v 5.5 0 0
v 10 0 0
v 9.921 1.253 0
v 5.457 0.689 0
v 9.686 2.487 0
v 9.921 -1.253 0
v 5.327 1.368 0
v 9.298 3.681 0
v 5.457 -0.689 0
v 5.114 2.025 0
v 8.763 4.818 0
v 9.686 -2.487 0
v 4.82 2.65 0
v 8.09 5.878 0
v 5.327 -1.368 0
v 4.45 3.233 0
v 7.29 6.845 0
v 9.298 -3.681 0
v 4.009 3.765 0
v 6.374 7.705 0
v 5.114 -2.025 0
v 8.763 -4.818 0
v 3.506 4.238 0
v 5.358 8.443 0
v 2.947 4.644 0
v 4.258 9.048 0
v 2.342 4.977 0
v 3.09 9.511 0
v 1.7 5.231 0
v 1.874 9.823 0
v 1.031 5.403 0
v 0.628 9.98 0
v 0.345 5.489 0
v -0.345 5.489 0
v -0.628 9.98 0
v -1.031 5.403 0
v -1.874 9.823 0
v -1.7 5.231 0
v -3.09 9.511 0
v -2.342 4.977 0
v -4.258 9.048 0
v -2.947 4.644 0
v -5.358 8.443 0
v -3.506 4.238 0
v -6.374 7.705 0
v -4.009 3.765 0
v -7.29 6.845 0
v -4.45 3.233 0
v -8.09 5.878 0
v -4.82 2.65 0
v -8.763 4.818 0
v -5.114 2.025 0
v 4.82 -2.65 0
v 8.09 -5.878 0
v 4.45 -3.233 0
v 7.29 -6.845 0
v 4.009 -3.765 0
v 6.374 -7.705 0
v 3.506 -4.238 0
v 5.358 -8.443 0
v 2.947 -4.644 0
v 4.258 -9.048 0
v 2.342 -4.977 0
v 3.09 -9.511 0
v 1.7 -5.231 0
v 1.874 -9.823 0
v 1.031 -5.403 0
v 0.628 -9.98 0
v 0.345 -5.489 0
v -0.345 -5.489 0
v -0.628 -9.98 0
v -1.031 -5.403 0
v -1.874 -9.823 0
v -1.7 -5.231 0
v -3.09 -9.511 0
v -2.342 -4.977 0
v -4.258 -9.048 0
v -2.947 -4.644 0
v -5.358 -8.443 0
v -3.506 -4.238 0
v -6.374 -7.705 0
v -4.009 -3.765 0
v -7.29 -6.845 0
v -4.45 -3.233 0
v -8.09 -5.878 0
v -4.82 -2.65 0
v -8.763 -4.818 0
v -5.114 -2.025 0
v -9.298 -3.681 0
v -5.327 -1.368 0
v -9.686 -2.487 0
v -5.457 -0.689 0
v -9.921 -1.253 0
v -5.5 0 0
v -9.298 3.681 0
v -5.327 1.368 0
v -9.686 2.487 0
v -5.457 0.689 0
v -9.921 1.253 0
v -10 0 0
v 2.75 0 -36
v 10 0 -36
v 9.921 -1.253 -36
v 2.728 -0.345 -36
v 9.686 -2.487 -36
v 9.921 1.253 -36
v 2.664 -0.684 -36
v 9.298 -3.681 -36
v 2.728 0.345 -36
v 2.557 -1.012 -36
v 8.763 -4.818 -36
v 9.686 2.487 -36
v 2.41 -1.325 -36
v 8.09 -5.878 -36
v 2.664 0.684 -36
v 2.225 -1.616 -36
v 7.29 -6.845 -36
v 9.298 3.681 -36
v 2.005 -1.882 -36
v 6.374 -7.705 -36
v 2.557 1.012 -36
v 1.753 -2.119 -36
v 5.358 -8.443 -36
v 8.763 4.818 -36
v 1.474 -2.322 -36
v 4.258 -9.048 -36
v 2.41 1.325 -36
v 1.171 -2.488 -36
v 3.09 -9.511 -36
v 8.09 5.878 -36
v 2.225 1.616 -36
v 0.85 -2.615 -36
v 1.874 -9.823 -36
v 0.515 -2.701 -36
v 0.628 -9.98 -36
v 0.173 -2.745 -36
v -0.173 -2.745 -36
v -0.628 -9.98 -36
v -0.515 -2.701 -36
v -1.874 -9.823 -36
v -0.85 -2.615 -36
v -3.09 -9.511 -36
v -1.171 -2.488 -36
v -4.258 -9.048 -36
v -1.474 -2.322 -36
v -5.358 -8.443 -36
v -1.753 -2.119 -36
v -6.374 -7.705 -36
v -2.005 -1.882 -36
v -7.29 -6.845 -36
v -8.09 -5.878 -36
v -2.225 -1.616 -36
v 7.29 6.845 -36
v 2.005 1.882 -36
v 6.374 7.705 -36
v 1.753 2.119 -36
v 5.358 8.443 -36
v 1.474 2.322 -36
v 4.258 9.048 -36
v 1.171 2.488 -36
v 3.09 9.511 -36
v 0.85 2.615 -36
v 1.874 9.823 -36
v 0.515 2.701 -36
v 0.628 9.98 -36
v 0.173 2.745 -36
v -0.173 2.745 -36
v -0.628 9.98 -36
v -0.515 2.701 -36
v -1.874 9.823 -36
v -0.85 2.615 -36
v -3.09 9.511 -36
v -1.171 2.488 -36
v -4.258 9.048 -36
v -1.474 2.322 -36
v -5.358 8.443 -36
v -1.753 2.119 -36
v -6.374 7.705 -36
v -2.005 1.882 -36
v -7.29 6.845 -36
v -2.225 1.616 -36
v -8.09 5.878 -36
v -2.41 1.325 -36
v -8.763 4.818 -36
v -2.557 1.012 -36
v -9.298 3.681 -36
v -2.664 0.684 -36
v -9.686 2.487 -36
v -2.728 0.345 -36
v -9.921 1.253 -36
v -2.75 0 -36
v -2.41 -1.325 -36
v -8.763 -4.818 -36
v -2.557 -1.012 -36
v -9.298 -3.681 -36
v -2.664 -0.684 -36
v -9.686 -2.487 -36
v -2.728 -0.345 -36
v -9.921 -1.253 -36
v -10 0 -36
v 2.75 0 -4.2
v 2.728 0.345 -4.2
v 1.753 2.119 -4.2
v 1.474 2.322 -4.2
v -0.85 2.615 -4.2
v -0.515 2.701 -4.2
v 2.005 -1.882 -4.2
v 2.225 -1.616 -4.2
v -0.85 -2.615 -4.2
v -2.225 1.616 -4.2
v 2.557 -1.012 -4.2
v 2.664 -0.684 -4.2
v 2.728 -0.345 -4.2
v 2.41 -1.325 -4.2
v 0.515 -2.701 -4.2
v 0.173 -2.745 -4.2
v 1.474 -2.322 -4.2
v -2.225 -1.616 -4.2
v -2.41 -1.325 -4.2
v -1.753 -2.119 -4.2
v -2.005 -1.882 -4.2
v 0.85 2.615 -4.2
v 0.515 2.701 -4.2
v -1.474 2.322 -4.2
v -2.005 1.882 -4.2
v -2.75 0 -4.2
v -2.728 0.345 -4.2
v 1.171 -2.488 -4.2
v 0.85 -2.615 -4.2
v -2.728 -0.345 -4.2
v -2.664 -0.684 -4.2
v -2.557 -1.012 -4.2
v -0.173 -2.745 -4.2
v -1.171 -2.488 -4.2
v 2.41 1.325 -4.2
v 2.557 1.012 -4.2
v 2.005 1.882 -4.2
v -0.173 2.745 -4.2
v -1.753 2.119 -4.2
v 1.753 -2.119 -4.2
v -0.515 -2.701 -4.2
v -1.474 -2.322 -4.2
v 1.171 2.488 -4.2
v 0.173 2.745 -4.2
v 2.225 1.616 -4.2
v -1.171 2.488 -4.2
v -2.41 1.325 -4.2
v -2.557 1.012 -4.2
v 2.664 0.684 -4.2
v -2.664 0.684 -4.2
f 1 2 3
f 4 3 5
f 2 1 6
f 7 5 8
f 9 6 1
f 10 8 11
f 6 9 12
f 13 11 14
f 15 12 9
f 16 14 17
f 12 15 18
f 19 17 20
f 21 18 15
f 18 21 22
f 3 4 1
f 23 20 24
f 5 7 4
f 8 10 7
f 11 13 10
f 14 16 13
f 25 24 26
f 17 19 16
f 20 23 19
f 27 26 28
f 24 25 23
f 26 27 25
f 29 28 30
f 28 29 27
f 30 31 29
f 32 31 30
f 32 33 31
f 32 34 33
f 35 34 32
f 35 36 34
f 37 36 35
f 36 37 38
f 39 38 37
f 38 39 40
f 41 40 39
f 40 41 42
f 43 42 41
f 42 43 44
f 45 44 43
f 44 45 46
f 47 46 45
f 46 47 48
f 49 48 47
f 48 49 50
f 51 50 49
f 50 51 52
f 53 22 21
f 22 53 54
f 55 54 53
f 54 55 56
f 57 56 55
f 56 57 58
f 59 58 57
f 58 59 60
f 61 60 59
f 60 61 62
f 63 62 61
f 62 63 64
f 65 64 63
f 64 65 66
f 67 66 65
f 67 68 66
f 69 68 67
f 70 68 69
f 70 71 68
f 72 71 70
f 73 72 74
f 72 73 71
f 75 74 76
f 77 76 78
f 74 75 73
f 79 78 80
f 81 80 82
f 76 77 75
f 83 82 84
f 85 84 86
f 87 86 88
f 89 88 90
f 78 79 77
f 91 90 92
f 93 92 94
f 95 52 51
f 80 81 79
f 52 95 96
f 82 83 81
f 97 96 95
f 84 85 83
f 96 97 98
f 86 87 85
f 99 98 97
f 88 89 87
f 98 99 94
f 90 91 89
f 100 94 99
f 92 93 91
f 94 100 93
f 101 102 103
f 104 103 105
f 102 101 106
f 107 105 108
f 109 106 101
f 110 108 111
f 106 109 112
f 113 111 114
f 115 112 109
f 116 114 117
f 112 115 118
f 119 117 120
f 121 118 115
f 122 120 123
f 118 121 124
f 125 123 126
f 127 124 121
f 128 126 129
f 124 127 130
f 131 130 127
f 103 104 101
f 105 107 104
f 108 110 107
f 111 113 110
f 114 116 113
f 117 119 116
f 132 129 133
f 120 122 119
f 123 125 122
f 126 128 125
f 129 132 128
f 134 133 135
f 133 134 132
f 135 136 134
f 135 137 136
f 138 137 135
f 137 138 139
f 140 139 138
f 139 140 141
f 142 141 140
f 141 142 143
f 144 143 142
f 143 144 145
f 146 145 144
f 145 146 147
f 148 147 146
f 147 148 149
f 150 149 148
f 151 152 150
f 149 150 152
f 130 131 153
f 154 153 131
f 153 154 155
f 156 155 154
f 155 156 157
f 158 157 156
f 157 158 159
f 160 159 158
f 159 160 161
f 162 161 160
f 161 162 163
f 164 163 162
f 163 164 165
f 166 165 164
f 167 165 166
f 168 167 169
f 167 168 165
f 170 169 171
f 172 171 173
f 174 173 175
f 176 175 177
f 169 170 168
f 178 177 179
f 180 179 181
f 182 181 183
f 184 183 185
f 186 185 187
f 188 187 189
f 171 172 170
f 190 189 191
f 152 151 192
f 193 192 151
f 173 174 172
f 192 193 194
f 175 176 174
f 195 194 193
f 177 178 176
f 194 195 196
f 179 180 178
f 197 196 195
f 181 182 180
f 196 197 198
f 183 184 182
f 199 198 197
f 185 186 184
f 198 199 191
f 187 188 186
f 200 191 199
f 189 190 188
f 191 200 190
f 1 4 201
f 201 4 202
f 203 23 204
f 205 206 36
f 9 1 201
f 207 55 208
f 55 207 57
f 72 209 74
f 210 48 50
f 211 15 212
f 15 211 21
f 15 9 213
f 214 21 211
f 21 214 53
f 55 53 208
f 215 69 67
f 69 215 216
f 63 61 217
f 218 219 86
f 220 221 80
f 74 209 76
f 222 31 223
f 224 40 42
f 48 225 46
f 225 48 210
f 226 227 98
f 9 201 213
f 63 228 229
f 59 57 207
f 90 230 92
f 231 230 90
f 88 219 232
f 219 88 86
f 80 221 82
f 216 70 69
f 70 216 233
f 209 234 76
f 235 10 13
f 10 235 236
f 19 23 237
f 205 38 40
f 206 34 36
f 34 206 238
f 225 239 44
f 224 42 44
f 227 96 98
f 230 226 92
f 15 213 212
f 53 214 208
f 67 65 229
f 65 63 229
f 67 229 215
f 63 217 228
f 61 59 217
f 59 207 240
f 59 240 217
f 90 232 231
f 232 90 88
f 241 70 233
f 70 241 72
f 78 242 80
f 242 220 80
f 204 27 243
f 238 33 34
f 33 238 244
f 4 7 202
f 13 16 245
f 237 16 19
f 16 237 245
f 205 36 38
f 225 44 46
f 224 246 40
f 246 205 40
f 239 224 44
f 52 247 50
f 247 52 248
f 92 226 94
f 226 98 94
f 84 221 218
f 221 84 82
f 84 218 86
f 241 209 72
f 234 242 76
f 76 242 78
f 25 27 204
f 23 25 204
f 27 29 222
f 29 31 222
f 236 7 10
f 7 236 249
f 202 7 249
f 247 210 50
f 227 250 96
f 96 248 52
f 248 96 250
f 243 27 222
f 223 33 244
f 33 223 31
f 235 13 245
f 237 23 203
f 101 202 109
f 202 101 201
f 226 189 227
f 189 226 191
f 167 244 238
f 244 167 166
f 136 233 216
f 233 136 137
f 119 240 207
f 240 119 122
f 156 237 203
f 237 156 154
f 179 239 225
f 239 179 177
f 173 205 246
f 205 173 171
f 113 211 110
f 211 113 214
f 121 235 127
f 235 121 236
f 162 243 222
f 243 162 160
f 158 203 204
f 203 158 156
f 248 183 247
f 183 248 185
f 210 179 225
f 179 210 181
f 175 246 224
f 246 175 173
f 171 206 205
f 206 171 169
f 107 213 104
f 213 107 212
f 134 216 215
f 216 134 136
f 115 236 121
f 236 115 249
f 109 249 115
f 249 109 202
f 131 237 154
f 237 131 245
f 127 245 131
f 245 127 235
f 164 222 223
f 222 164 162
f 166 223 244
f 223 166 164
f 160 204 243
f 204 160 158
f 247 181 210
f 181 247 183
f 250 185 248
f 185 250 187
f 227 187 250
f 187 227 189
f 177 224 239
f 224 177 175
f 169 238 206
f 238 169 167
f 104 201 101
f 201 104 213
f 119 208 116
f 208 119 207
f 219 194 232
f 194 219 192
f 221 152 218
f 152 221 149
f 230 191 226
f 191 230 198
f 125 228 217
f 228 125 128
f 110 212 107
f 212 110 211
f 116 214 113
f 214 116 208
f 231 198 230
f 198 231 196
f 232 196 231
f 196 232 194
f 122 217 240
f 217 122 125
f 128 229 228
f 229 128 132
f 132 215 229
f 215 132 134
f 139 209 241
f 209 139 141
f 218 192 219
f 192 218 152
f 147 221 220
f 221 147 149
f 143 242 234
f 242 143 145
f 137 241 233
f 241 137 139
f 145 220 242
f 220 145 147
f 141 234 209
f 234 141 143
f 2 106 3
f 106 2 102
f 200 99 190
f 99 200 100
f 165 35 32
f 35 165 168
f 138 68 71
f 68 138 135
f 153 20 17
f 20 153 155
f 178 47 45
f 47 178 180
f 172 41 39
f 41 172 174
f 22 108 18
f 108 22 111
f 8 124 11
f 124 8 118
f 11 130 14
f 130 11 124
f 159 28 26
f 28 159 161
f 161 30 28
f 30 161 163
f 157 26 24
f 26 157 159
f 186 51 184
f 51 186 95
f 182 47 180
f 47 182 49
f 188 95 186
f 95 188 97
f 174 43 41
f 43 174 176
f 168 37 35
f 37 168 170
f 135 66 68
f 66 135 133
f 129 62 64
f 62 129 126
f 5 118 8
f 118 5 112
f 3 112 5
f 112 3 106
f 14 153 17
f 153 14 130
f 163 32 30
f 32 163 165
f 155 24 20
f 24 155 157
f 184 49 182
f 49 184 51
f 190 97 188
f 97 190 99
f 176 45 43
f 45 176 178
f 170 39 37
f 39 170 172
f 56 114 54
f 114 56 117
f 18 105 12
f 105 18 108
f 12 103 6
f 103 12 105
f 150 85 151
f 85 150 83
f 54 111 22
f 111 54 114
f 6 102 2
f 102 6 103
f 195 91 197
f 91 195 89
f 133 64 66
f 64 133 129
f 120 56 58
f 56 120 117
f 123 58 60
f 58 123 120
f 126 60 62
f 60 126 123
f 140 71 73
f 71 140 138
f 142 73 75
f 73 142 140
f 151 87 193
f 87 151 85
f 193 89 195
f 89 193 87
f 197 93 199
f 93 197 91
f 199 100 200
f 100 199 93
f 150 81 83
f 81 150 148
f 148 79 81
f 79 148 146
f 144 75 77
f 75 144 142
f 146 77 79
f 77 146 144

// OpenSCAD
$fn = 50;


difference() {
	union() {
		translate(v = [0, 0, -36.0000000000]) {
			cylinder(h = 36, r = 10.0000000000);
		}
		cylinder(h = 0, r = 20.0000000000);
	}
	union() {
		translate(v = [0, 0, 0]) {
			rotate(a = [0, 0, 0]) {
				difference() {
					union() {
						#translate(v = [0, 0, -36.0000000000]) {
							cylinder(h = 36, r = 2.2500000000);
						}
						#translate(v = [0, 0, -4.2000000000]) {
							cylinder(h = 4.2000000000, r1 = 2.7500000000, r2 = 5.5000000000);
						}
						#translate(v = [0, 0, -36.0000000000]) {
							cylinder(h = 36, r = 2.7500000000);
						}
						#translate(v = [0, 0, -36.0000000000]) {
							cylinder(h = 36, r = 2.2500000000);
						}
					}
					union();
				}
			}
		}
	}
}
